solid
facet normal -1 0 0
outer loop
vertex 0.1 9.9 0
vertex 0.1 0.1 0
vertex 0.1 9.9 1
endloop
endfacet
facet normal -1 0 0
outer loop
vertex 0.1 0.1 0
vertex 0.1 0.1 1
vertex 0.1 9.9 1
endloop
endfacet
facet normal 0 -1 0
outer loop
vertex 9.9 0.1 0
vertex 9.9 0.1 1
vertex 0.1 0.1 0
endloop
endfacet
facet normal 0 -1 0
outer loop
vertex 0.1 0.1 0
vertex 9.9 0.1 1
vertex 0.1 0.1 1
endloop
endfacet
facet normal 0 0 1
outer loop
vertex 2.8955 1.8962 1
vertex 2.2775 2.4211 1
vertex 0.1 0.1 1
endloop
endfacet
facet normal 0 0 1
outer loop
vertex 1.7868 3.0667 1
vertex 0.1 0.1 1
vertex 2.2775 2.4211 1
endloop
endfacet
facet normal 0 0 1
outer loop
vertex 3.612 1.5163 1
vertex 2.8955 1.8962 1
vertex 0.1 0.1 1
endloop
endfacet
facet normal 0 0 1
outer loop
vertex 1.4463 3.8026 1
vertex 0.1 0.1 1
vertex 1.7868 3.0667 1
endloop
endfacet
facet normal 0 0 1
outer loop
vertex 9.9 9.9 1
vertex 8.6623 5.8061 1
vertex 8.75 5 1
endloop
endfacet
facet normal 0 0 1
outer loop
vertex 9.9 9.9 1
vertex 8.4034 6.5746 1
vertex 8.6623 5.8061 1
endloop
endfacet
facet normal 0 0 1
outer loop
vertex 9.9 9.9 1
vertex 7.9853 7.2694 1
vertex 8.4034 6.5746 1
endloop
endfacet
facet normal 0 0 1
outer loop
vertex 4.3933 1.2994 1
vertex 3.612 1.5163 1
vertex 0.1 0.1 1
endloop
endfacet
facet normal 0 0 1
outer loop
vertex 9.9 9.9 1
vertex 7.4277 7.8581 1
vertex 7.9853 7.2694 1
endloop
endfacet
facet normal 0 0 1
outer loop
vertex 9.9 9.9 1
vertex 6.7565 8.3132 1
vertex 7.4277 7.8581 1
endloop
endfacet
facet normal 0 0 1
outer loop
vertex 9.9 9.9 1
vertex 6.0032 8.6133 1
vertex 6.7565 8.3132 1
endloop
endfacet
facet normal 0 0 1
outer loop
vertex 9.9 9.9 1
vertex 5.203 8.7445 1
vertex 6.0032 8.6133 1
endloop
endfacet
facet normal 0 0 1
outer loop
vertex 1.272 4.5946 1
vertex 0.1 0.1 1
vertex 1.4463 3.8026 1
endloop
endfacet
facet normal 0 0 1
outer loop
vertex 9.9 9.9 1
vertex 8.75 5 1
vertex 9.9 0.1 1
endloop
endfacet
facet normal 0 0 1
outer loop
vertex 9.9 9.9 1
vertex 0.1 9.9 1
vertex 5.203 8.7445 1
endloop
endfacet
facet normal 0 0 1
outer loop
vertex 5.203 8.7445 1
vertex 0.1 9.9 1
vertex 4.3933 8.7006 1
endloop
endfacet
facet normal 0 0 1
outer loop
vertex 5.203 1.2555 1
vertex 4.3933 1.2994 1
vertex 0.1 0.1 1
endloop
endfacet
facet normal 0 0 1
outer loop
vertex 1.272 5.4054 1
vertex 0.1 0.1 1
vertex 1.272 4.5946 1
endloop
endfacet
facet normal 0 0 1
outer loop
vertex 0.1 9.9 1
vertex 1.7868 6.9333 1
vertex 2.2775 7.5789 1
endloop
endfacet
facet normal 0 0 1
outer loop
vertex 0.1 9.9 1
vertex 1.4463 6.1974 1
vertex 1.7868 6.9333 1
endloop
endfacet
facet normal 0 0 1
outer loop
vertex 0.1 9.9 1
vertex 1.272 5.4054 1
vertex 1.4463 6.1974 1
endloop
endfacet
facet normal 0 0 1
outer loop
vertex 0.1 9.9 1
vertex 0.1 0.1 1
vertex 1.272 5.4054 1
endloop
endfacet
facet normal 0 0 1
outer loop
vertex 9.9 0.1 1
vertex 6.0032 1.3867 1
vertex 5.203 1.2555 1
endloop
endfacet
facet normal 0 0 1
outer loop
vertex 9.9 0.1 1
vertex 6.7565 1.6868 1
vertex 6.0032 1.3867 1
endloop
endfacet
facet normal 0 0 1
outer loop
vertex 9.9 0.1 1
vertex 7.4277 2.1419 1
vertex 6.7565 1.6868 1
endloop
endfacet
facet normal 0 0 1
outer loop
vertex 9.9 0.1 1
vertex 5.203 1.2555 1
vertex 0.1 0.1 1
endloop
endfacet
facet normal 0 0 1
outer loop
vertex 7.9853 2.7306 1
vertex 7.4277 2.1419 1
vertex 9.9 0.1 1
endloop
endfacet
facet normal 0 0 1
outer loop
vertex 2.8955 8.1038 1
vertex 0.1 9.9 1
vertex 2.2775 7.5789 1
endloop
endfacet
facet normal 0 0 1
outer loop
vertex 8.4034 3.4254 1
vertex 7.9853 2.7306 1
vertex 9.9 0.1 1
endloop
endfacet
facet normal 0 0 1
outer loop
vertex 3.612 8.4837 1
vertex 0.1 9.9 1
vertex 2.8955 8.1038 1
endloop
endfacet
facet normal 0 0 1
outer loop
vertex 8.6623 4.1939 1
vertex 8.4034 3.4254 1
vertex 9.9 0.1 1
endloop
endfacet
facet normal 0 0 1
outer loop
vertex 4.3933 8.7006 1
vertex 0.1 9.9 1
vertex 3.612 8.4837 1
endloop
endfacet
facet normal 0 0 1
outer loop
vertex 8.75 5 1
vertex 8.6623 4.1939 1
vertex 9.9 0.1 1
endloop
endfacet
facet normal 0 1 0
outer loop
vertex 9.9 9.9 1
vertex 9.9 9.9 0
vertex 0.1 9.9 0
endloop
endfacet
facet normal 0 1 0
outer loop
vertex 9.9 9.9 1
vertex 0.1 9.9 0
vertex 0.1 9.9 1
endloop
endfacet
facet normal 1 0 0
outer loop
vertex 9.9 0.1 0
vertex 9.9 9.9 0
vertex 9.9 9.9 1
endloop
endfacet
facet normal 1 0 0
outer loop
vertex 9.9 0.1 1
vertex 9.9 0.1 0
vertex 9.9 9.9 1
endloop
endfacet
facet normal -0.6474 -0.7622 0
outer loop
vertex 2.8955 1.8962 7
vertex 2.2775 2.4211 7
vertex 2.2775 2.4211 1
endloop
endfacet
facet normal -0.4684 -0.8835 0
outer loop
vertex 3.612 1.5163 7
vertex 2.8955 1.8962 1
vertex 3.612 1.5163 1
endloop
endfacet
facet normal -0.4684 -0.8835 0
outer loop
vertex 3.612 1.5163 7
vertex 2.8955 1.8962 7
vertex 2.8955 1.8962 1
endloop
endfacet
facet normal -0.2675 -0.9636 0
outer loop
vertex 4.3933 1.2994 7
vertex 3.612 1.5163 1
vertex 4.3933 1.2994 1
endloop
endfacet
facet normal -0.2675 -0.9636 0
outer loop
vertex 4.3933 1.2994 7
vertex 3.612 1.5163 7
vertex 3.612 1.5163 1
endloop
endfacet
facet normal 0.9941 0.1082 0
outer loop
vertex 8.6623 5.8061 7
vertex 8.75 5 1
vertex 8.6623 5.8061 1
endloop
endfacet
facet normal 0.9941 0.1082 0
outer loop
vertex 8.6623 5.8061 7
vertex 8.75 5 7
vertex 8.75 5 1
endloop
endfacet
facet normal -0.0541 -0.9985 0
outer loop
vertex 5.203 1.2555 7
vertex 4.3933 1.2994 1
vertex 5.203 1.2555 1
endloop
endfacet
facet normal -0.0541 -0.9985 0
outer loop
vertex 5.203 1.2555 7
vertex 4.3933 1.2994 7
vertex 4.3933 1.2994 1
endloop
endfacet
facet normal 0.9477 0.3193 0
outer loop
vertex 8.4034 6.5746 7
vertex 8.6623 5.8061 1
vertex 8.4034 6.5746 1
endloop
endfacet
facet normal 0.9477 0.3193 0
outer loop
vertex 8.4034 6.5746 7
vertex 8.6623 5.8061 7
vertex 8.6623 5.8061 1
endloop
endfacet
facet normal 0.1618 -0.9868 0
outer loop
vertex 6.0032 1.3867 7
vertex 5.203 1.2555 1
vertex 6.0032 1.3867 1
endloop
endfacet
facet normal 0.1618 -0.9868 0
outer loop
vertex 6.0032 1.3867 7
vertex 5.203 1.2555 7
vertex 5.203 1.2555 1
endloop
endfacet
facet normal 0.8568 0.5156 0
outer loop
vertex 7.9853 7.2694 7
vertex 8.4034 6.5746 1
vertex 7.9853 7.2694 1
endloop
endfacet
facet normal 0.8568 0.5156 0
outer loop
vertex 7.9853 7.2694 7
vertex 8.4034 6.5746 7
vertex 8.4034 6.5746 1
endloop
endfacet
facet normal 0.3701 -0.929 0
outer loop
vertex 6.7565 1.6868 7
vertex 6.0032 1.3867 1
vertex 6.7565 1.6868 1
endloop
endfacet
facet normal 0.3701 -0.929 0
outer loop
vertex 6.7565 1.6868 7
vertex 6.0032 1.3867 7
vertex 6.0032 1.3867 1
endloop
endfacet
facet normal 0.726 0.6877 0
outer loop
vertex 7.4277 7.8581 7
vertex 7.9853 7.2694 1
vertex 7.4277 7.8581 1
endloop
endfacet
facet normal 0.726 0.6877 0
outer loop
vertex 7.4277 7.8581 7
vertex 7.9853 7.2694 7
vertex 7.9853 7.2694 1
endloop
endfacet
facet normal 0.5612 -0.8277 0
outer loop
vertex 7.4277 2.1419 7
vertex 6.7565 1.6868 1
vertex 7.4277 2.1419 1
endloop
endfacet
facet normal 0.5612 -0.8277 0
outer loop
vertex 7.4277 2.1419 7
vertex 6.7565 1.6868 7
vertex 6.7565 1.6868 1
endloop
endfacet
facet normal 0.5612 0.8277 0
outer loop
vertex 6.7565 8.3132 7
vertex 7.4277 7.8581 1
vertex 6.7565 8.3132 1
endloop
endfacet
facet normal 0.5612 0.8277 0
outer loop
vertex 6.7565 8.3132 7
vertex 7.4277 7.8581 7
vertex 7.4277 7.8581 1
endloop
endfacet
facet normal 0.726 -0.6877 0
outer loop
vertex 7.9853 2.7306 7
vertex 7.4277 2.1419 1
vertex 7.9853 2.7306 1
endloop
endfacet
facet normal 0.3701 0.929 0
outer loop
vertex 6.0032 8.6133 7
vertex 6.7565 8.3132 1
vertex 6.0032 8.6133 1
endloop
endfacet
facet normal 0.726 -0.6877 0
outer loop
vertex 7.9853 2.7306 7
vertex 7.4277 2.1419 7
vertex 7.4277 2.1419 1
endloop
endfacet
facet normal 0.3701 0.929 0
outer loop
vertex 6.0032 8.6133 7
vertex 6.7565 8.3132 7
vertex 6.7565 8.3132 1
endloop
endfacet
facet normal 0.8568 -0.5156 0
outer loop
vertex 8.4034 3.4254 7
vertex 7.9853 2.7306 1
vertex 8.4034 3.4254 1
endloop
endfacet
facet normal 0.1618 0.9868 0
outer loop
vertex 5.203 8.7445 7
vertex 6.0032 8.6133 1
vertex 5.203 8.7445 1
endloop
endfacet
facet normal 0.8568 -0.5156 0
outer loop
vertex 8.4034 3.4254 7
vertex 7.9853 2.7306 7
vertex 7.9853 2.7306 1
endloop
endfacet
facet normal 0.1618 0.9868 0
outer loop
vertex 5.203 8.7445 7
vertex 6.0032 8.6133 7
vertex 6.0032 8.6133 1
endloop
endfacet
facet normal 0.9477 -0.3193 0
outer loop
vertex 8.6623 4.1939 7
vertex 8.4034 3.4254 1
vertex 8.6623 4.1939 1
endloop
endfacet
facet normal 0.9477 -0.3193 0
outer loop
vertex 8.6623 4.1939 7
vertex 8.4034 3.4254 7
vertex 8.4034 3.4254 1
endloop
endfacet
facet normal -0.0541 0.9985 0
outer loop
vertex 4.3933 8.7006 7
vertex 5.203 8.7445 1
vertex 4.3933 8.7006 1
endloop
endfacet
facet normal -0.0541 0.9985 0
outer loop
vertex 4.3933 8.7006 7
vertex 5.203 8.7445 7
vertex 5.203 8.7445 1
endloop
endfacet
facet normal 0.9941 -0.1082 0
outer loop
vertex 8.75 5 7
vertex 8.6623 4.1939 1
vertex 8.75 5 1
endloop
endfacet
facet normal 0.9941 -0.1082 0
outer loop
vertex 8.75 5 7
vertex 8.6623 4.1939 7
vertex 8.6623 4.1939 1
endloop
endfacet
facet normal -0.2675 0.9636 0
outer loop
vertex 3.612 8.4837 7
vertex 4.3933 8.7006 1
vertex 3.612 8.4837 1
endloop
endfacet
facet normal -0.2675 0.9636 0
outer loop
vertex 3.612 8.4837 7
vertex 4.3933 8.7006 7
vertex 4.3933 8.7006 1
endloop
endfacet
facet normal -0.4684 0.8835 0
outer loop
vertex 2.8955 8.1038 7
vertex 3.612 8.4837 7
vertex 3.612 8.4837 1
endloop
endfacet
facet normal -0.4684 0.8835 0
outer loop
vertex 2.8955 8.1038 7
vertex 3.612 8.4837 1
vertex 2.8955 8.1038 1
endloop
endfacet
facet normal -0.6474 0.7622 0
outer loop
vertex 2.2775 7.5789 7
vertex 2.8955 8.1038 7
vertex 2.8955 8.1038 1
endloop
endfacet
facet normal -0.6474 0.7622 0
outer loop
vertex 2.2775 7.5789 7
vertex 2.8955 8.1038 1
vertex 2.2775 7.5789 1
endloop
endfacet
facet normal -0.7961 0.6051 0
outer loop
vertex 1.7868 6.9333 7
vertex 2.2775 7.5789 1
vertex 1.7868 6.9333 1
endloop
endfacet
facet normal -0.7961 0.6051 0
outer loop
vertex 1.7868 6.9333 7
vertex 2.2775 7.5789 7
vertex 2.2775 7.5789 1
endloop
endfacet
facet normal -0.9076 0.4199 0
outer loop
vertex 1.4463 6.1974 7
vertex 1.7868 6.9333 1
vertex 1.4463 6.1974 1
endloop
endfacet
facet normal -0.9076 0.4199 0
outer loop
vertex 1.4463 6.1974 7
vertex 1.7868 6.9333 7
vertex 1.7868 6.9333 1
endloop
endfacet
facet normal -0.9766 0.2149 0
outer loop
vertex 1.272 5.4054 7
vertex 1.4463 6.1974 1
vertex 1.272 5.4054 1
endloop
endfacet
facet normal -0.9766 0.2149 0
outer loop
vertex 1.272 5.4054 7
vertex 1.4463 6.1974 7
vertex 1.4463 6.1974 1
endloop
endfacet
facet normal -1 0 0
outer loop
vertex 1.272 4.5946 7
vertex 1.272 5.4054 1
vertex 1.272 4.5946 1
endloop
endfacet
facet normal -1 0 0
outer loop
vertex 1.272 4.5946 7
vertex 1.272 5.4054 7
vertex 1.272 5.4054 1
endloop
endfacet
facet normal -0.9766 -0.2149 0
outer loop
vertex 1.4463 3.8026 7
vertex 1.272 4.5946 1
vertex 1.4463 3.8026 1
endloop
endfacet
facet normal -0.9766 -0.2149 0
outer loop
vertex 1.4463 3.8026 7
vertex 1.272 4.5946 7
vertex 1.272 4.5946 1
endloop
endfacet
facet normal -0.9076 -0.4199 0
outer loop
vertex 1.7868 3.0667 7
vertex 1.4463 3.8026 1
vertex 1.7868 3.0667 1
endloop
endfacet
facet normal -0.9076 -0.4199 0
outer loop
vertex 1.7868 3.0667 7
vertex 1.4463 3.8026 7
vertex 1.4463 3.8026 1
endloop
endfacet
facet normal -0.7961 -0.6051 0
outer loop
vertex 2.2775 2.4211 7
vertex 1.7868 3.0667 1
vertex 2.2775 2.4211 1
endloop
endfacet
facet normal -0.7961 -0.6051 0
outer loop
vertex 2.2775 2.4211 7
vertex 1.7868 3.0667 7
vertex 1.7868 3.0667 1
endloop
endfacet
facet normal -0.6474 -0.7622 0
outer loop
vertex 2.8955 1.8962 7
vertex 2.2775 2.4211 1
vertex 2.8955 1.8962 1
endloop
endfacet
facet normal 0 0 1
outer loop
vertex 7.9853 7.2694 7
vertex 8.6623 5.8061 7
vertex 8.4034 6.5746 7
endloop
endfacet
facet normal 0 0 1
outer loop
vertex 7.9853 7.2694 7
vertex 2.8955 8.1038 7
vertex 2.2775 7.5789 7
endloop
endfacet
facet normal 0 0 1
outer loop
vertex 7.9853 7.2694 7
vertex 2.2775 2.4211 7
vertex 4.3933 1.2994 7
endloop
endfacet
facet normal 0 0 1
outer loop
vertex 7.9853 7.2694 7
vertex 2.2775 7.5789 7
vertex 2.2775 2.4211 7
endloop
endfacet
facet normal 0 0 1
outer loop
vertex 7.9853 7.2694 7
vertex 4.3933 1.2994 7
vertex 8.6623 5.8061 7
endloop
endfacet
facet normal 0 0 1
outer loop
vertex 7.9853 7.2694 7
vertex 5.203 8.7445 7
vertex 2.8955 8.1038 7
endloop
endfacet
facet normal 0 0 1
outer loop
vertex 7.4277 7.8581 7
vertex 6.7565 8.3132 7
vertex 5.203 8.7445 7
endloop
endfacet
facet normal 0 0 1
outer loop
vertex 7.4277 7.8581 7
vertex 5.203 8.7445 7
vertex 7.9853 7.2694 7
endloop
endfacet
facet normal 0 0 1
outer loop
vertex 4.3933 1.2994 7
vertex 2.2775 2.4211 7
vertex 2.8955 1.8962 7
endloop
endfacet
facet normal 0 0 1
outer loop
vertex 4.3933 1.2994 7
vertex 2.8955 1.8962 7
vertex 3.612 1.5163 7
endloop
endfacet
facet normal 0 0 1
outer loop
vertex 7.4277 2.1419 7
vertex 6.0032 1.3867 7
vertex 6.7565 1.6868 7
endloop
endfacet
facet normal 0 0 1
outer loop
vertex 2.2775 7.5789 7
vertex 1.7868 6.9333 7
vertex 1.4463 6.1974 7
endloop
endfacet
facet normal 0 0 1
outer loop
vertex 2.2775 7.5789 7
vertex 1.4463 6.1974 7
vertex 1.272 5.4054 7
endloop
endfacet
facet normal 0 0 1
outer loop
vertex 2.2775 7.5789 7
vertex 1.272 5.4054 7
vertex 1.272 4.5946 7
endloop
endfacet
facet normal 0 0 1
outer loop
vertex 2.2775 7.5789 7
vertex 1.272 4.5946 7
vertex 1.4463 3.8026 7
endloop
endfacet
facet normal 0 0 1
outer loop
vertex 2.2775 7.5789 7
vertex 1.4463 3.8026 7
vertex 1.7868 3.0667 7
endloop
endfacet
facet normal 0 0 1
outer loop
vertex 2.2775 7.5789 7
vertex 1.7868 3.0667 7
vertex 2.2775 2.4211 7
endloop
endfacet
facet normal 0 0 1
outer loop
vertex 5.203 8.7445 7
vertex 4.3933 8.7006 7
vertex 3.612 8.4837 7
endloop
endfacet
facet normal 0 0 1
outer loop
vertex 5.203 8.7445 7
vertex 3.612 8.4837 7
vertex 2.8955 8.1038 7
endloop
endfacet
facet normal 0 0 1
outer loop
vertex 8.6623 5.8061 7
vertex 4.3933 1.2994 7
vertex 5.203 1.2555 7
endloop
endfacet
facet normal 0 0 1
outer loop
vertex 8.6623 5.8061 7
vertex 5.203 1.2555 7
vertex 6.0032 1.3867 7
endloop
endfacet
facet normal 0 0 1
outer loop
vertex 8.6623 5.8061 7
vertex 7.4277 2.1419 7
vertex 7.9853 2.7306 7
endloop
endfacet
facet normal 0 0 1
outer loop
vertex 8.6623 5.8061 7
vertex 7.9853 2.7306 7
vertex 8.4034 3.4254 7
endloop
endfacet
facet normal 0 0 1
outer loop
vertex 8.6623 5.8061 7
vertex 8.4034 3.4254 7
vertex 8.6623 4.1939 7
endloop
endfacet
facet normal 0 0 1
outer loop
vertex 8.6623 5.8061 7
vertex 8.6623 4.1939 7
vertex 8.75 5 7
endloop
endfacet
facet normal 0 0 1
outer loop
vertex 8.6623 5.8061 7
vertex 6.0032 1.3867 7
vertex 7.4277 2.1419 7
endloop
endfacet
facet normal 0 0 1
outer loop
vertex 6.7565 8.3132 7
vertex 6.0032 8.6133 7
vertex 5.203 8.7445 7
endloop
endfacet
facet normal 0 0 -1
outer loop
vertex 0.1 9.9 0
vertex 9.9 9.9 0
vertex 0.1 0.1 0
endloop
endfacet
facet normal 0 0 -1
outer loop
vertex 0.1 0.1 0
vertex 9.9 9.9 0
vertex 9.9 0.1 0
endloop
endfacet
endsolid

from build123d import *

# Parameters (mm, degrees)
CYLINDER_R     = 3.75
CYLINDER_DEPTH = 7
BOX_W          = 9.8
BOX_H          = 9.8
BOX_DEPTH      = 1


with BuildPart() as cilindro:
    # Cylinder → Cylinder (new body)
    with BuildSketch(Plane(origin=(5, 5, 0), x_dir=(1, 0, 0), z_dir=(0, 0, 1))):
        Circle(CYLINDER_R)
    extrude(amount=CYLINDER_DEPTH)


with BuildPart() as tapon_soporte:
    # Box → Box (new body)
    with BuildSketch(Plane(origin=(0.1, 0.1, 0), x_dir=(1, 0, 0), z_dir=(0, 0, 1))):
        with Locations((4.9, 4.9)):
            Rectangle(BOX_W, BOX_H)
    extrude(amount=BOX_DEPTH)

    # Fusion: union Cilindro
    add(cilindro.part)


solid = tapon_soporte.part
